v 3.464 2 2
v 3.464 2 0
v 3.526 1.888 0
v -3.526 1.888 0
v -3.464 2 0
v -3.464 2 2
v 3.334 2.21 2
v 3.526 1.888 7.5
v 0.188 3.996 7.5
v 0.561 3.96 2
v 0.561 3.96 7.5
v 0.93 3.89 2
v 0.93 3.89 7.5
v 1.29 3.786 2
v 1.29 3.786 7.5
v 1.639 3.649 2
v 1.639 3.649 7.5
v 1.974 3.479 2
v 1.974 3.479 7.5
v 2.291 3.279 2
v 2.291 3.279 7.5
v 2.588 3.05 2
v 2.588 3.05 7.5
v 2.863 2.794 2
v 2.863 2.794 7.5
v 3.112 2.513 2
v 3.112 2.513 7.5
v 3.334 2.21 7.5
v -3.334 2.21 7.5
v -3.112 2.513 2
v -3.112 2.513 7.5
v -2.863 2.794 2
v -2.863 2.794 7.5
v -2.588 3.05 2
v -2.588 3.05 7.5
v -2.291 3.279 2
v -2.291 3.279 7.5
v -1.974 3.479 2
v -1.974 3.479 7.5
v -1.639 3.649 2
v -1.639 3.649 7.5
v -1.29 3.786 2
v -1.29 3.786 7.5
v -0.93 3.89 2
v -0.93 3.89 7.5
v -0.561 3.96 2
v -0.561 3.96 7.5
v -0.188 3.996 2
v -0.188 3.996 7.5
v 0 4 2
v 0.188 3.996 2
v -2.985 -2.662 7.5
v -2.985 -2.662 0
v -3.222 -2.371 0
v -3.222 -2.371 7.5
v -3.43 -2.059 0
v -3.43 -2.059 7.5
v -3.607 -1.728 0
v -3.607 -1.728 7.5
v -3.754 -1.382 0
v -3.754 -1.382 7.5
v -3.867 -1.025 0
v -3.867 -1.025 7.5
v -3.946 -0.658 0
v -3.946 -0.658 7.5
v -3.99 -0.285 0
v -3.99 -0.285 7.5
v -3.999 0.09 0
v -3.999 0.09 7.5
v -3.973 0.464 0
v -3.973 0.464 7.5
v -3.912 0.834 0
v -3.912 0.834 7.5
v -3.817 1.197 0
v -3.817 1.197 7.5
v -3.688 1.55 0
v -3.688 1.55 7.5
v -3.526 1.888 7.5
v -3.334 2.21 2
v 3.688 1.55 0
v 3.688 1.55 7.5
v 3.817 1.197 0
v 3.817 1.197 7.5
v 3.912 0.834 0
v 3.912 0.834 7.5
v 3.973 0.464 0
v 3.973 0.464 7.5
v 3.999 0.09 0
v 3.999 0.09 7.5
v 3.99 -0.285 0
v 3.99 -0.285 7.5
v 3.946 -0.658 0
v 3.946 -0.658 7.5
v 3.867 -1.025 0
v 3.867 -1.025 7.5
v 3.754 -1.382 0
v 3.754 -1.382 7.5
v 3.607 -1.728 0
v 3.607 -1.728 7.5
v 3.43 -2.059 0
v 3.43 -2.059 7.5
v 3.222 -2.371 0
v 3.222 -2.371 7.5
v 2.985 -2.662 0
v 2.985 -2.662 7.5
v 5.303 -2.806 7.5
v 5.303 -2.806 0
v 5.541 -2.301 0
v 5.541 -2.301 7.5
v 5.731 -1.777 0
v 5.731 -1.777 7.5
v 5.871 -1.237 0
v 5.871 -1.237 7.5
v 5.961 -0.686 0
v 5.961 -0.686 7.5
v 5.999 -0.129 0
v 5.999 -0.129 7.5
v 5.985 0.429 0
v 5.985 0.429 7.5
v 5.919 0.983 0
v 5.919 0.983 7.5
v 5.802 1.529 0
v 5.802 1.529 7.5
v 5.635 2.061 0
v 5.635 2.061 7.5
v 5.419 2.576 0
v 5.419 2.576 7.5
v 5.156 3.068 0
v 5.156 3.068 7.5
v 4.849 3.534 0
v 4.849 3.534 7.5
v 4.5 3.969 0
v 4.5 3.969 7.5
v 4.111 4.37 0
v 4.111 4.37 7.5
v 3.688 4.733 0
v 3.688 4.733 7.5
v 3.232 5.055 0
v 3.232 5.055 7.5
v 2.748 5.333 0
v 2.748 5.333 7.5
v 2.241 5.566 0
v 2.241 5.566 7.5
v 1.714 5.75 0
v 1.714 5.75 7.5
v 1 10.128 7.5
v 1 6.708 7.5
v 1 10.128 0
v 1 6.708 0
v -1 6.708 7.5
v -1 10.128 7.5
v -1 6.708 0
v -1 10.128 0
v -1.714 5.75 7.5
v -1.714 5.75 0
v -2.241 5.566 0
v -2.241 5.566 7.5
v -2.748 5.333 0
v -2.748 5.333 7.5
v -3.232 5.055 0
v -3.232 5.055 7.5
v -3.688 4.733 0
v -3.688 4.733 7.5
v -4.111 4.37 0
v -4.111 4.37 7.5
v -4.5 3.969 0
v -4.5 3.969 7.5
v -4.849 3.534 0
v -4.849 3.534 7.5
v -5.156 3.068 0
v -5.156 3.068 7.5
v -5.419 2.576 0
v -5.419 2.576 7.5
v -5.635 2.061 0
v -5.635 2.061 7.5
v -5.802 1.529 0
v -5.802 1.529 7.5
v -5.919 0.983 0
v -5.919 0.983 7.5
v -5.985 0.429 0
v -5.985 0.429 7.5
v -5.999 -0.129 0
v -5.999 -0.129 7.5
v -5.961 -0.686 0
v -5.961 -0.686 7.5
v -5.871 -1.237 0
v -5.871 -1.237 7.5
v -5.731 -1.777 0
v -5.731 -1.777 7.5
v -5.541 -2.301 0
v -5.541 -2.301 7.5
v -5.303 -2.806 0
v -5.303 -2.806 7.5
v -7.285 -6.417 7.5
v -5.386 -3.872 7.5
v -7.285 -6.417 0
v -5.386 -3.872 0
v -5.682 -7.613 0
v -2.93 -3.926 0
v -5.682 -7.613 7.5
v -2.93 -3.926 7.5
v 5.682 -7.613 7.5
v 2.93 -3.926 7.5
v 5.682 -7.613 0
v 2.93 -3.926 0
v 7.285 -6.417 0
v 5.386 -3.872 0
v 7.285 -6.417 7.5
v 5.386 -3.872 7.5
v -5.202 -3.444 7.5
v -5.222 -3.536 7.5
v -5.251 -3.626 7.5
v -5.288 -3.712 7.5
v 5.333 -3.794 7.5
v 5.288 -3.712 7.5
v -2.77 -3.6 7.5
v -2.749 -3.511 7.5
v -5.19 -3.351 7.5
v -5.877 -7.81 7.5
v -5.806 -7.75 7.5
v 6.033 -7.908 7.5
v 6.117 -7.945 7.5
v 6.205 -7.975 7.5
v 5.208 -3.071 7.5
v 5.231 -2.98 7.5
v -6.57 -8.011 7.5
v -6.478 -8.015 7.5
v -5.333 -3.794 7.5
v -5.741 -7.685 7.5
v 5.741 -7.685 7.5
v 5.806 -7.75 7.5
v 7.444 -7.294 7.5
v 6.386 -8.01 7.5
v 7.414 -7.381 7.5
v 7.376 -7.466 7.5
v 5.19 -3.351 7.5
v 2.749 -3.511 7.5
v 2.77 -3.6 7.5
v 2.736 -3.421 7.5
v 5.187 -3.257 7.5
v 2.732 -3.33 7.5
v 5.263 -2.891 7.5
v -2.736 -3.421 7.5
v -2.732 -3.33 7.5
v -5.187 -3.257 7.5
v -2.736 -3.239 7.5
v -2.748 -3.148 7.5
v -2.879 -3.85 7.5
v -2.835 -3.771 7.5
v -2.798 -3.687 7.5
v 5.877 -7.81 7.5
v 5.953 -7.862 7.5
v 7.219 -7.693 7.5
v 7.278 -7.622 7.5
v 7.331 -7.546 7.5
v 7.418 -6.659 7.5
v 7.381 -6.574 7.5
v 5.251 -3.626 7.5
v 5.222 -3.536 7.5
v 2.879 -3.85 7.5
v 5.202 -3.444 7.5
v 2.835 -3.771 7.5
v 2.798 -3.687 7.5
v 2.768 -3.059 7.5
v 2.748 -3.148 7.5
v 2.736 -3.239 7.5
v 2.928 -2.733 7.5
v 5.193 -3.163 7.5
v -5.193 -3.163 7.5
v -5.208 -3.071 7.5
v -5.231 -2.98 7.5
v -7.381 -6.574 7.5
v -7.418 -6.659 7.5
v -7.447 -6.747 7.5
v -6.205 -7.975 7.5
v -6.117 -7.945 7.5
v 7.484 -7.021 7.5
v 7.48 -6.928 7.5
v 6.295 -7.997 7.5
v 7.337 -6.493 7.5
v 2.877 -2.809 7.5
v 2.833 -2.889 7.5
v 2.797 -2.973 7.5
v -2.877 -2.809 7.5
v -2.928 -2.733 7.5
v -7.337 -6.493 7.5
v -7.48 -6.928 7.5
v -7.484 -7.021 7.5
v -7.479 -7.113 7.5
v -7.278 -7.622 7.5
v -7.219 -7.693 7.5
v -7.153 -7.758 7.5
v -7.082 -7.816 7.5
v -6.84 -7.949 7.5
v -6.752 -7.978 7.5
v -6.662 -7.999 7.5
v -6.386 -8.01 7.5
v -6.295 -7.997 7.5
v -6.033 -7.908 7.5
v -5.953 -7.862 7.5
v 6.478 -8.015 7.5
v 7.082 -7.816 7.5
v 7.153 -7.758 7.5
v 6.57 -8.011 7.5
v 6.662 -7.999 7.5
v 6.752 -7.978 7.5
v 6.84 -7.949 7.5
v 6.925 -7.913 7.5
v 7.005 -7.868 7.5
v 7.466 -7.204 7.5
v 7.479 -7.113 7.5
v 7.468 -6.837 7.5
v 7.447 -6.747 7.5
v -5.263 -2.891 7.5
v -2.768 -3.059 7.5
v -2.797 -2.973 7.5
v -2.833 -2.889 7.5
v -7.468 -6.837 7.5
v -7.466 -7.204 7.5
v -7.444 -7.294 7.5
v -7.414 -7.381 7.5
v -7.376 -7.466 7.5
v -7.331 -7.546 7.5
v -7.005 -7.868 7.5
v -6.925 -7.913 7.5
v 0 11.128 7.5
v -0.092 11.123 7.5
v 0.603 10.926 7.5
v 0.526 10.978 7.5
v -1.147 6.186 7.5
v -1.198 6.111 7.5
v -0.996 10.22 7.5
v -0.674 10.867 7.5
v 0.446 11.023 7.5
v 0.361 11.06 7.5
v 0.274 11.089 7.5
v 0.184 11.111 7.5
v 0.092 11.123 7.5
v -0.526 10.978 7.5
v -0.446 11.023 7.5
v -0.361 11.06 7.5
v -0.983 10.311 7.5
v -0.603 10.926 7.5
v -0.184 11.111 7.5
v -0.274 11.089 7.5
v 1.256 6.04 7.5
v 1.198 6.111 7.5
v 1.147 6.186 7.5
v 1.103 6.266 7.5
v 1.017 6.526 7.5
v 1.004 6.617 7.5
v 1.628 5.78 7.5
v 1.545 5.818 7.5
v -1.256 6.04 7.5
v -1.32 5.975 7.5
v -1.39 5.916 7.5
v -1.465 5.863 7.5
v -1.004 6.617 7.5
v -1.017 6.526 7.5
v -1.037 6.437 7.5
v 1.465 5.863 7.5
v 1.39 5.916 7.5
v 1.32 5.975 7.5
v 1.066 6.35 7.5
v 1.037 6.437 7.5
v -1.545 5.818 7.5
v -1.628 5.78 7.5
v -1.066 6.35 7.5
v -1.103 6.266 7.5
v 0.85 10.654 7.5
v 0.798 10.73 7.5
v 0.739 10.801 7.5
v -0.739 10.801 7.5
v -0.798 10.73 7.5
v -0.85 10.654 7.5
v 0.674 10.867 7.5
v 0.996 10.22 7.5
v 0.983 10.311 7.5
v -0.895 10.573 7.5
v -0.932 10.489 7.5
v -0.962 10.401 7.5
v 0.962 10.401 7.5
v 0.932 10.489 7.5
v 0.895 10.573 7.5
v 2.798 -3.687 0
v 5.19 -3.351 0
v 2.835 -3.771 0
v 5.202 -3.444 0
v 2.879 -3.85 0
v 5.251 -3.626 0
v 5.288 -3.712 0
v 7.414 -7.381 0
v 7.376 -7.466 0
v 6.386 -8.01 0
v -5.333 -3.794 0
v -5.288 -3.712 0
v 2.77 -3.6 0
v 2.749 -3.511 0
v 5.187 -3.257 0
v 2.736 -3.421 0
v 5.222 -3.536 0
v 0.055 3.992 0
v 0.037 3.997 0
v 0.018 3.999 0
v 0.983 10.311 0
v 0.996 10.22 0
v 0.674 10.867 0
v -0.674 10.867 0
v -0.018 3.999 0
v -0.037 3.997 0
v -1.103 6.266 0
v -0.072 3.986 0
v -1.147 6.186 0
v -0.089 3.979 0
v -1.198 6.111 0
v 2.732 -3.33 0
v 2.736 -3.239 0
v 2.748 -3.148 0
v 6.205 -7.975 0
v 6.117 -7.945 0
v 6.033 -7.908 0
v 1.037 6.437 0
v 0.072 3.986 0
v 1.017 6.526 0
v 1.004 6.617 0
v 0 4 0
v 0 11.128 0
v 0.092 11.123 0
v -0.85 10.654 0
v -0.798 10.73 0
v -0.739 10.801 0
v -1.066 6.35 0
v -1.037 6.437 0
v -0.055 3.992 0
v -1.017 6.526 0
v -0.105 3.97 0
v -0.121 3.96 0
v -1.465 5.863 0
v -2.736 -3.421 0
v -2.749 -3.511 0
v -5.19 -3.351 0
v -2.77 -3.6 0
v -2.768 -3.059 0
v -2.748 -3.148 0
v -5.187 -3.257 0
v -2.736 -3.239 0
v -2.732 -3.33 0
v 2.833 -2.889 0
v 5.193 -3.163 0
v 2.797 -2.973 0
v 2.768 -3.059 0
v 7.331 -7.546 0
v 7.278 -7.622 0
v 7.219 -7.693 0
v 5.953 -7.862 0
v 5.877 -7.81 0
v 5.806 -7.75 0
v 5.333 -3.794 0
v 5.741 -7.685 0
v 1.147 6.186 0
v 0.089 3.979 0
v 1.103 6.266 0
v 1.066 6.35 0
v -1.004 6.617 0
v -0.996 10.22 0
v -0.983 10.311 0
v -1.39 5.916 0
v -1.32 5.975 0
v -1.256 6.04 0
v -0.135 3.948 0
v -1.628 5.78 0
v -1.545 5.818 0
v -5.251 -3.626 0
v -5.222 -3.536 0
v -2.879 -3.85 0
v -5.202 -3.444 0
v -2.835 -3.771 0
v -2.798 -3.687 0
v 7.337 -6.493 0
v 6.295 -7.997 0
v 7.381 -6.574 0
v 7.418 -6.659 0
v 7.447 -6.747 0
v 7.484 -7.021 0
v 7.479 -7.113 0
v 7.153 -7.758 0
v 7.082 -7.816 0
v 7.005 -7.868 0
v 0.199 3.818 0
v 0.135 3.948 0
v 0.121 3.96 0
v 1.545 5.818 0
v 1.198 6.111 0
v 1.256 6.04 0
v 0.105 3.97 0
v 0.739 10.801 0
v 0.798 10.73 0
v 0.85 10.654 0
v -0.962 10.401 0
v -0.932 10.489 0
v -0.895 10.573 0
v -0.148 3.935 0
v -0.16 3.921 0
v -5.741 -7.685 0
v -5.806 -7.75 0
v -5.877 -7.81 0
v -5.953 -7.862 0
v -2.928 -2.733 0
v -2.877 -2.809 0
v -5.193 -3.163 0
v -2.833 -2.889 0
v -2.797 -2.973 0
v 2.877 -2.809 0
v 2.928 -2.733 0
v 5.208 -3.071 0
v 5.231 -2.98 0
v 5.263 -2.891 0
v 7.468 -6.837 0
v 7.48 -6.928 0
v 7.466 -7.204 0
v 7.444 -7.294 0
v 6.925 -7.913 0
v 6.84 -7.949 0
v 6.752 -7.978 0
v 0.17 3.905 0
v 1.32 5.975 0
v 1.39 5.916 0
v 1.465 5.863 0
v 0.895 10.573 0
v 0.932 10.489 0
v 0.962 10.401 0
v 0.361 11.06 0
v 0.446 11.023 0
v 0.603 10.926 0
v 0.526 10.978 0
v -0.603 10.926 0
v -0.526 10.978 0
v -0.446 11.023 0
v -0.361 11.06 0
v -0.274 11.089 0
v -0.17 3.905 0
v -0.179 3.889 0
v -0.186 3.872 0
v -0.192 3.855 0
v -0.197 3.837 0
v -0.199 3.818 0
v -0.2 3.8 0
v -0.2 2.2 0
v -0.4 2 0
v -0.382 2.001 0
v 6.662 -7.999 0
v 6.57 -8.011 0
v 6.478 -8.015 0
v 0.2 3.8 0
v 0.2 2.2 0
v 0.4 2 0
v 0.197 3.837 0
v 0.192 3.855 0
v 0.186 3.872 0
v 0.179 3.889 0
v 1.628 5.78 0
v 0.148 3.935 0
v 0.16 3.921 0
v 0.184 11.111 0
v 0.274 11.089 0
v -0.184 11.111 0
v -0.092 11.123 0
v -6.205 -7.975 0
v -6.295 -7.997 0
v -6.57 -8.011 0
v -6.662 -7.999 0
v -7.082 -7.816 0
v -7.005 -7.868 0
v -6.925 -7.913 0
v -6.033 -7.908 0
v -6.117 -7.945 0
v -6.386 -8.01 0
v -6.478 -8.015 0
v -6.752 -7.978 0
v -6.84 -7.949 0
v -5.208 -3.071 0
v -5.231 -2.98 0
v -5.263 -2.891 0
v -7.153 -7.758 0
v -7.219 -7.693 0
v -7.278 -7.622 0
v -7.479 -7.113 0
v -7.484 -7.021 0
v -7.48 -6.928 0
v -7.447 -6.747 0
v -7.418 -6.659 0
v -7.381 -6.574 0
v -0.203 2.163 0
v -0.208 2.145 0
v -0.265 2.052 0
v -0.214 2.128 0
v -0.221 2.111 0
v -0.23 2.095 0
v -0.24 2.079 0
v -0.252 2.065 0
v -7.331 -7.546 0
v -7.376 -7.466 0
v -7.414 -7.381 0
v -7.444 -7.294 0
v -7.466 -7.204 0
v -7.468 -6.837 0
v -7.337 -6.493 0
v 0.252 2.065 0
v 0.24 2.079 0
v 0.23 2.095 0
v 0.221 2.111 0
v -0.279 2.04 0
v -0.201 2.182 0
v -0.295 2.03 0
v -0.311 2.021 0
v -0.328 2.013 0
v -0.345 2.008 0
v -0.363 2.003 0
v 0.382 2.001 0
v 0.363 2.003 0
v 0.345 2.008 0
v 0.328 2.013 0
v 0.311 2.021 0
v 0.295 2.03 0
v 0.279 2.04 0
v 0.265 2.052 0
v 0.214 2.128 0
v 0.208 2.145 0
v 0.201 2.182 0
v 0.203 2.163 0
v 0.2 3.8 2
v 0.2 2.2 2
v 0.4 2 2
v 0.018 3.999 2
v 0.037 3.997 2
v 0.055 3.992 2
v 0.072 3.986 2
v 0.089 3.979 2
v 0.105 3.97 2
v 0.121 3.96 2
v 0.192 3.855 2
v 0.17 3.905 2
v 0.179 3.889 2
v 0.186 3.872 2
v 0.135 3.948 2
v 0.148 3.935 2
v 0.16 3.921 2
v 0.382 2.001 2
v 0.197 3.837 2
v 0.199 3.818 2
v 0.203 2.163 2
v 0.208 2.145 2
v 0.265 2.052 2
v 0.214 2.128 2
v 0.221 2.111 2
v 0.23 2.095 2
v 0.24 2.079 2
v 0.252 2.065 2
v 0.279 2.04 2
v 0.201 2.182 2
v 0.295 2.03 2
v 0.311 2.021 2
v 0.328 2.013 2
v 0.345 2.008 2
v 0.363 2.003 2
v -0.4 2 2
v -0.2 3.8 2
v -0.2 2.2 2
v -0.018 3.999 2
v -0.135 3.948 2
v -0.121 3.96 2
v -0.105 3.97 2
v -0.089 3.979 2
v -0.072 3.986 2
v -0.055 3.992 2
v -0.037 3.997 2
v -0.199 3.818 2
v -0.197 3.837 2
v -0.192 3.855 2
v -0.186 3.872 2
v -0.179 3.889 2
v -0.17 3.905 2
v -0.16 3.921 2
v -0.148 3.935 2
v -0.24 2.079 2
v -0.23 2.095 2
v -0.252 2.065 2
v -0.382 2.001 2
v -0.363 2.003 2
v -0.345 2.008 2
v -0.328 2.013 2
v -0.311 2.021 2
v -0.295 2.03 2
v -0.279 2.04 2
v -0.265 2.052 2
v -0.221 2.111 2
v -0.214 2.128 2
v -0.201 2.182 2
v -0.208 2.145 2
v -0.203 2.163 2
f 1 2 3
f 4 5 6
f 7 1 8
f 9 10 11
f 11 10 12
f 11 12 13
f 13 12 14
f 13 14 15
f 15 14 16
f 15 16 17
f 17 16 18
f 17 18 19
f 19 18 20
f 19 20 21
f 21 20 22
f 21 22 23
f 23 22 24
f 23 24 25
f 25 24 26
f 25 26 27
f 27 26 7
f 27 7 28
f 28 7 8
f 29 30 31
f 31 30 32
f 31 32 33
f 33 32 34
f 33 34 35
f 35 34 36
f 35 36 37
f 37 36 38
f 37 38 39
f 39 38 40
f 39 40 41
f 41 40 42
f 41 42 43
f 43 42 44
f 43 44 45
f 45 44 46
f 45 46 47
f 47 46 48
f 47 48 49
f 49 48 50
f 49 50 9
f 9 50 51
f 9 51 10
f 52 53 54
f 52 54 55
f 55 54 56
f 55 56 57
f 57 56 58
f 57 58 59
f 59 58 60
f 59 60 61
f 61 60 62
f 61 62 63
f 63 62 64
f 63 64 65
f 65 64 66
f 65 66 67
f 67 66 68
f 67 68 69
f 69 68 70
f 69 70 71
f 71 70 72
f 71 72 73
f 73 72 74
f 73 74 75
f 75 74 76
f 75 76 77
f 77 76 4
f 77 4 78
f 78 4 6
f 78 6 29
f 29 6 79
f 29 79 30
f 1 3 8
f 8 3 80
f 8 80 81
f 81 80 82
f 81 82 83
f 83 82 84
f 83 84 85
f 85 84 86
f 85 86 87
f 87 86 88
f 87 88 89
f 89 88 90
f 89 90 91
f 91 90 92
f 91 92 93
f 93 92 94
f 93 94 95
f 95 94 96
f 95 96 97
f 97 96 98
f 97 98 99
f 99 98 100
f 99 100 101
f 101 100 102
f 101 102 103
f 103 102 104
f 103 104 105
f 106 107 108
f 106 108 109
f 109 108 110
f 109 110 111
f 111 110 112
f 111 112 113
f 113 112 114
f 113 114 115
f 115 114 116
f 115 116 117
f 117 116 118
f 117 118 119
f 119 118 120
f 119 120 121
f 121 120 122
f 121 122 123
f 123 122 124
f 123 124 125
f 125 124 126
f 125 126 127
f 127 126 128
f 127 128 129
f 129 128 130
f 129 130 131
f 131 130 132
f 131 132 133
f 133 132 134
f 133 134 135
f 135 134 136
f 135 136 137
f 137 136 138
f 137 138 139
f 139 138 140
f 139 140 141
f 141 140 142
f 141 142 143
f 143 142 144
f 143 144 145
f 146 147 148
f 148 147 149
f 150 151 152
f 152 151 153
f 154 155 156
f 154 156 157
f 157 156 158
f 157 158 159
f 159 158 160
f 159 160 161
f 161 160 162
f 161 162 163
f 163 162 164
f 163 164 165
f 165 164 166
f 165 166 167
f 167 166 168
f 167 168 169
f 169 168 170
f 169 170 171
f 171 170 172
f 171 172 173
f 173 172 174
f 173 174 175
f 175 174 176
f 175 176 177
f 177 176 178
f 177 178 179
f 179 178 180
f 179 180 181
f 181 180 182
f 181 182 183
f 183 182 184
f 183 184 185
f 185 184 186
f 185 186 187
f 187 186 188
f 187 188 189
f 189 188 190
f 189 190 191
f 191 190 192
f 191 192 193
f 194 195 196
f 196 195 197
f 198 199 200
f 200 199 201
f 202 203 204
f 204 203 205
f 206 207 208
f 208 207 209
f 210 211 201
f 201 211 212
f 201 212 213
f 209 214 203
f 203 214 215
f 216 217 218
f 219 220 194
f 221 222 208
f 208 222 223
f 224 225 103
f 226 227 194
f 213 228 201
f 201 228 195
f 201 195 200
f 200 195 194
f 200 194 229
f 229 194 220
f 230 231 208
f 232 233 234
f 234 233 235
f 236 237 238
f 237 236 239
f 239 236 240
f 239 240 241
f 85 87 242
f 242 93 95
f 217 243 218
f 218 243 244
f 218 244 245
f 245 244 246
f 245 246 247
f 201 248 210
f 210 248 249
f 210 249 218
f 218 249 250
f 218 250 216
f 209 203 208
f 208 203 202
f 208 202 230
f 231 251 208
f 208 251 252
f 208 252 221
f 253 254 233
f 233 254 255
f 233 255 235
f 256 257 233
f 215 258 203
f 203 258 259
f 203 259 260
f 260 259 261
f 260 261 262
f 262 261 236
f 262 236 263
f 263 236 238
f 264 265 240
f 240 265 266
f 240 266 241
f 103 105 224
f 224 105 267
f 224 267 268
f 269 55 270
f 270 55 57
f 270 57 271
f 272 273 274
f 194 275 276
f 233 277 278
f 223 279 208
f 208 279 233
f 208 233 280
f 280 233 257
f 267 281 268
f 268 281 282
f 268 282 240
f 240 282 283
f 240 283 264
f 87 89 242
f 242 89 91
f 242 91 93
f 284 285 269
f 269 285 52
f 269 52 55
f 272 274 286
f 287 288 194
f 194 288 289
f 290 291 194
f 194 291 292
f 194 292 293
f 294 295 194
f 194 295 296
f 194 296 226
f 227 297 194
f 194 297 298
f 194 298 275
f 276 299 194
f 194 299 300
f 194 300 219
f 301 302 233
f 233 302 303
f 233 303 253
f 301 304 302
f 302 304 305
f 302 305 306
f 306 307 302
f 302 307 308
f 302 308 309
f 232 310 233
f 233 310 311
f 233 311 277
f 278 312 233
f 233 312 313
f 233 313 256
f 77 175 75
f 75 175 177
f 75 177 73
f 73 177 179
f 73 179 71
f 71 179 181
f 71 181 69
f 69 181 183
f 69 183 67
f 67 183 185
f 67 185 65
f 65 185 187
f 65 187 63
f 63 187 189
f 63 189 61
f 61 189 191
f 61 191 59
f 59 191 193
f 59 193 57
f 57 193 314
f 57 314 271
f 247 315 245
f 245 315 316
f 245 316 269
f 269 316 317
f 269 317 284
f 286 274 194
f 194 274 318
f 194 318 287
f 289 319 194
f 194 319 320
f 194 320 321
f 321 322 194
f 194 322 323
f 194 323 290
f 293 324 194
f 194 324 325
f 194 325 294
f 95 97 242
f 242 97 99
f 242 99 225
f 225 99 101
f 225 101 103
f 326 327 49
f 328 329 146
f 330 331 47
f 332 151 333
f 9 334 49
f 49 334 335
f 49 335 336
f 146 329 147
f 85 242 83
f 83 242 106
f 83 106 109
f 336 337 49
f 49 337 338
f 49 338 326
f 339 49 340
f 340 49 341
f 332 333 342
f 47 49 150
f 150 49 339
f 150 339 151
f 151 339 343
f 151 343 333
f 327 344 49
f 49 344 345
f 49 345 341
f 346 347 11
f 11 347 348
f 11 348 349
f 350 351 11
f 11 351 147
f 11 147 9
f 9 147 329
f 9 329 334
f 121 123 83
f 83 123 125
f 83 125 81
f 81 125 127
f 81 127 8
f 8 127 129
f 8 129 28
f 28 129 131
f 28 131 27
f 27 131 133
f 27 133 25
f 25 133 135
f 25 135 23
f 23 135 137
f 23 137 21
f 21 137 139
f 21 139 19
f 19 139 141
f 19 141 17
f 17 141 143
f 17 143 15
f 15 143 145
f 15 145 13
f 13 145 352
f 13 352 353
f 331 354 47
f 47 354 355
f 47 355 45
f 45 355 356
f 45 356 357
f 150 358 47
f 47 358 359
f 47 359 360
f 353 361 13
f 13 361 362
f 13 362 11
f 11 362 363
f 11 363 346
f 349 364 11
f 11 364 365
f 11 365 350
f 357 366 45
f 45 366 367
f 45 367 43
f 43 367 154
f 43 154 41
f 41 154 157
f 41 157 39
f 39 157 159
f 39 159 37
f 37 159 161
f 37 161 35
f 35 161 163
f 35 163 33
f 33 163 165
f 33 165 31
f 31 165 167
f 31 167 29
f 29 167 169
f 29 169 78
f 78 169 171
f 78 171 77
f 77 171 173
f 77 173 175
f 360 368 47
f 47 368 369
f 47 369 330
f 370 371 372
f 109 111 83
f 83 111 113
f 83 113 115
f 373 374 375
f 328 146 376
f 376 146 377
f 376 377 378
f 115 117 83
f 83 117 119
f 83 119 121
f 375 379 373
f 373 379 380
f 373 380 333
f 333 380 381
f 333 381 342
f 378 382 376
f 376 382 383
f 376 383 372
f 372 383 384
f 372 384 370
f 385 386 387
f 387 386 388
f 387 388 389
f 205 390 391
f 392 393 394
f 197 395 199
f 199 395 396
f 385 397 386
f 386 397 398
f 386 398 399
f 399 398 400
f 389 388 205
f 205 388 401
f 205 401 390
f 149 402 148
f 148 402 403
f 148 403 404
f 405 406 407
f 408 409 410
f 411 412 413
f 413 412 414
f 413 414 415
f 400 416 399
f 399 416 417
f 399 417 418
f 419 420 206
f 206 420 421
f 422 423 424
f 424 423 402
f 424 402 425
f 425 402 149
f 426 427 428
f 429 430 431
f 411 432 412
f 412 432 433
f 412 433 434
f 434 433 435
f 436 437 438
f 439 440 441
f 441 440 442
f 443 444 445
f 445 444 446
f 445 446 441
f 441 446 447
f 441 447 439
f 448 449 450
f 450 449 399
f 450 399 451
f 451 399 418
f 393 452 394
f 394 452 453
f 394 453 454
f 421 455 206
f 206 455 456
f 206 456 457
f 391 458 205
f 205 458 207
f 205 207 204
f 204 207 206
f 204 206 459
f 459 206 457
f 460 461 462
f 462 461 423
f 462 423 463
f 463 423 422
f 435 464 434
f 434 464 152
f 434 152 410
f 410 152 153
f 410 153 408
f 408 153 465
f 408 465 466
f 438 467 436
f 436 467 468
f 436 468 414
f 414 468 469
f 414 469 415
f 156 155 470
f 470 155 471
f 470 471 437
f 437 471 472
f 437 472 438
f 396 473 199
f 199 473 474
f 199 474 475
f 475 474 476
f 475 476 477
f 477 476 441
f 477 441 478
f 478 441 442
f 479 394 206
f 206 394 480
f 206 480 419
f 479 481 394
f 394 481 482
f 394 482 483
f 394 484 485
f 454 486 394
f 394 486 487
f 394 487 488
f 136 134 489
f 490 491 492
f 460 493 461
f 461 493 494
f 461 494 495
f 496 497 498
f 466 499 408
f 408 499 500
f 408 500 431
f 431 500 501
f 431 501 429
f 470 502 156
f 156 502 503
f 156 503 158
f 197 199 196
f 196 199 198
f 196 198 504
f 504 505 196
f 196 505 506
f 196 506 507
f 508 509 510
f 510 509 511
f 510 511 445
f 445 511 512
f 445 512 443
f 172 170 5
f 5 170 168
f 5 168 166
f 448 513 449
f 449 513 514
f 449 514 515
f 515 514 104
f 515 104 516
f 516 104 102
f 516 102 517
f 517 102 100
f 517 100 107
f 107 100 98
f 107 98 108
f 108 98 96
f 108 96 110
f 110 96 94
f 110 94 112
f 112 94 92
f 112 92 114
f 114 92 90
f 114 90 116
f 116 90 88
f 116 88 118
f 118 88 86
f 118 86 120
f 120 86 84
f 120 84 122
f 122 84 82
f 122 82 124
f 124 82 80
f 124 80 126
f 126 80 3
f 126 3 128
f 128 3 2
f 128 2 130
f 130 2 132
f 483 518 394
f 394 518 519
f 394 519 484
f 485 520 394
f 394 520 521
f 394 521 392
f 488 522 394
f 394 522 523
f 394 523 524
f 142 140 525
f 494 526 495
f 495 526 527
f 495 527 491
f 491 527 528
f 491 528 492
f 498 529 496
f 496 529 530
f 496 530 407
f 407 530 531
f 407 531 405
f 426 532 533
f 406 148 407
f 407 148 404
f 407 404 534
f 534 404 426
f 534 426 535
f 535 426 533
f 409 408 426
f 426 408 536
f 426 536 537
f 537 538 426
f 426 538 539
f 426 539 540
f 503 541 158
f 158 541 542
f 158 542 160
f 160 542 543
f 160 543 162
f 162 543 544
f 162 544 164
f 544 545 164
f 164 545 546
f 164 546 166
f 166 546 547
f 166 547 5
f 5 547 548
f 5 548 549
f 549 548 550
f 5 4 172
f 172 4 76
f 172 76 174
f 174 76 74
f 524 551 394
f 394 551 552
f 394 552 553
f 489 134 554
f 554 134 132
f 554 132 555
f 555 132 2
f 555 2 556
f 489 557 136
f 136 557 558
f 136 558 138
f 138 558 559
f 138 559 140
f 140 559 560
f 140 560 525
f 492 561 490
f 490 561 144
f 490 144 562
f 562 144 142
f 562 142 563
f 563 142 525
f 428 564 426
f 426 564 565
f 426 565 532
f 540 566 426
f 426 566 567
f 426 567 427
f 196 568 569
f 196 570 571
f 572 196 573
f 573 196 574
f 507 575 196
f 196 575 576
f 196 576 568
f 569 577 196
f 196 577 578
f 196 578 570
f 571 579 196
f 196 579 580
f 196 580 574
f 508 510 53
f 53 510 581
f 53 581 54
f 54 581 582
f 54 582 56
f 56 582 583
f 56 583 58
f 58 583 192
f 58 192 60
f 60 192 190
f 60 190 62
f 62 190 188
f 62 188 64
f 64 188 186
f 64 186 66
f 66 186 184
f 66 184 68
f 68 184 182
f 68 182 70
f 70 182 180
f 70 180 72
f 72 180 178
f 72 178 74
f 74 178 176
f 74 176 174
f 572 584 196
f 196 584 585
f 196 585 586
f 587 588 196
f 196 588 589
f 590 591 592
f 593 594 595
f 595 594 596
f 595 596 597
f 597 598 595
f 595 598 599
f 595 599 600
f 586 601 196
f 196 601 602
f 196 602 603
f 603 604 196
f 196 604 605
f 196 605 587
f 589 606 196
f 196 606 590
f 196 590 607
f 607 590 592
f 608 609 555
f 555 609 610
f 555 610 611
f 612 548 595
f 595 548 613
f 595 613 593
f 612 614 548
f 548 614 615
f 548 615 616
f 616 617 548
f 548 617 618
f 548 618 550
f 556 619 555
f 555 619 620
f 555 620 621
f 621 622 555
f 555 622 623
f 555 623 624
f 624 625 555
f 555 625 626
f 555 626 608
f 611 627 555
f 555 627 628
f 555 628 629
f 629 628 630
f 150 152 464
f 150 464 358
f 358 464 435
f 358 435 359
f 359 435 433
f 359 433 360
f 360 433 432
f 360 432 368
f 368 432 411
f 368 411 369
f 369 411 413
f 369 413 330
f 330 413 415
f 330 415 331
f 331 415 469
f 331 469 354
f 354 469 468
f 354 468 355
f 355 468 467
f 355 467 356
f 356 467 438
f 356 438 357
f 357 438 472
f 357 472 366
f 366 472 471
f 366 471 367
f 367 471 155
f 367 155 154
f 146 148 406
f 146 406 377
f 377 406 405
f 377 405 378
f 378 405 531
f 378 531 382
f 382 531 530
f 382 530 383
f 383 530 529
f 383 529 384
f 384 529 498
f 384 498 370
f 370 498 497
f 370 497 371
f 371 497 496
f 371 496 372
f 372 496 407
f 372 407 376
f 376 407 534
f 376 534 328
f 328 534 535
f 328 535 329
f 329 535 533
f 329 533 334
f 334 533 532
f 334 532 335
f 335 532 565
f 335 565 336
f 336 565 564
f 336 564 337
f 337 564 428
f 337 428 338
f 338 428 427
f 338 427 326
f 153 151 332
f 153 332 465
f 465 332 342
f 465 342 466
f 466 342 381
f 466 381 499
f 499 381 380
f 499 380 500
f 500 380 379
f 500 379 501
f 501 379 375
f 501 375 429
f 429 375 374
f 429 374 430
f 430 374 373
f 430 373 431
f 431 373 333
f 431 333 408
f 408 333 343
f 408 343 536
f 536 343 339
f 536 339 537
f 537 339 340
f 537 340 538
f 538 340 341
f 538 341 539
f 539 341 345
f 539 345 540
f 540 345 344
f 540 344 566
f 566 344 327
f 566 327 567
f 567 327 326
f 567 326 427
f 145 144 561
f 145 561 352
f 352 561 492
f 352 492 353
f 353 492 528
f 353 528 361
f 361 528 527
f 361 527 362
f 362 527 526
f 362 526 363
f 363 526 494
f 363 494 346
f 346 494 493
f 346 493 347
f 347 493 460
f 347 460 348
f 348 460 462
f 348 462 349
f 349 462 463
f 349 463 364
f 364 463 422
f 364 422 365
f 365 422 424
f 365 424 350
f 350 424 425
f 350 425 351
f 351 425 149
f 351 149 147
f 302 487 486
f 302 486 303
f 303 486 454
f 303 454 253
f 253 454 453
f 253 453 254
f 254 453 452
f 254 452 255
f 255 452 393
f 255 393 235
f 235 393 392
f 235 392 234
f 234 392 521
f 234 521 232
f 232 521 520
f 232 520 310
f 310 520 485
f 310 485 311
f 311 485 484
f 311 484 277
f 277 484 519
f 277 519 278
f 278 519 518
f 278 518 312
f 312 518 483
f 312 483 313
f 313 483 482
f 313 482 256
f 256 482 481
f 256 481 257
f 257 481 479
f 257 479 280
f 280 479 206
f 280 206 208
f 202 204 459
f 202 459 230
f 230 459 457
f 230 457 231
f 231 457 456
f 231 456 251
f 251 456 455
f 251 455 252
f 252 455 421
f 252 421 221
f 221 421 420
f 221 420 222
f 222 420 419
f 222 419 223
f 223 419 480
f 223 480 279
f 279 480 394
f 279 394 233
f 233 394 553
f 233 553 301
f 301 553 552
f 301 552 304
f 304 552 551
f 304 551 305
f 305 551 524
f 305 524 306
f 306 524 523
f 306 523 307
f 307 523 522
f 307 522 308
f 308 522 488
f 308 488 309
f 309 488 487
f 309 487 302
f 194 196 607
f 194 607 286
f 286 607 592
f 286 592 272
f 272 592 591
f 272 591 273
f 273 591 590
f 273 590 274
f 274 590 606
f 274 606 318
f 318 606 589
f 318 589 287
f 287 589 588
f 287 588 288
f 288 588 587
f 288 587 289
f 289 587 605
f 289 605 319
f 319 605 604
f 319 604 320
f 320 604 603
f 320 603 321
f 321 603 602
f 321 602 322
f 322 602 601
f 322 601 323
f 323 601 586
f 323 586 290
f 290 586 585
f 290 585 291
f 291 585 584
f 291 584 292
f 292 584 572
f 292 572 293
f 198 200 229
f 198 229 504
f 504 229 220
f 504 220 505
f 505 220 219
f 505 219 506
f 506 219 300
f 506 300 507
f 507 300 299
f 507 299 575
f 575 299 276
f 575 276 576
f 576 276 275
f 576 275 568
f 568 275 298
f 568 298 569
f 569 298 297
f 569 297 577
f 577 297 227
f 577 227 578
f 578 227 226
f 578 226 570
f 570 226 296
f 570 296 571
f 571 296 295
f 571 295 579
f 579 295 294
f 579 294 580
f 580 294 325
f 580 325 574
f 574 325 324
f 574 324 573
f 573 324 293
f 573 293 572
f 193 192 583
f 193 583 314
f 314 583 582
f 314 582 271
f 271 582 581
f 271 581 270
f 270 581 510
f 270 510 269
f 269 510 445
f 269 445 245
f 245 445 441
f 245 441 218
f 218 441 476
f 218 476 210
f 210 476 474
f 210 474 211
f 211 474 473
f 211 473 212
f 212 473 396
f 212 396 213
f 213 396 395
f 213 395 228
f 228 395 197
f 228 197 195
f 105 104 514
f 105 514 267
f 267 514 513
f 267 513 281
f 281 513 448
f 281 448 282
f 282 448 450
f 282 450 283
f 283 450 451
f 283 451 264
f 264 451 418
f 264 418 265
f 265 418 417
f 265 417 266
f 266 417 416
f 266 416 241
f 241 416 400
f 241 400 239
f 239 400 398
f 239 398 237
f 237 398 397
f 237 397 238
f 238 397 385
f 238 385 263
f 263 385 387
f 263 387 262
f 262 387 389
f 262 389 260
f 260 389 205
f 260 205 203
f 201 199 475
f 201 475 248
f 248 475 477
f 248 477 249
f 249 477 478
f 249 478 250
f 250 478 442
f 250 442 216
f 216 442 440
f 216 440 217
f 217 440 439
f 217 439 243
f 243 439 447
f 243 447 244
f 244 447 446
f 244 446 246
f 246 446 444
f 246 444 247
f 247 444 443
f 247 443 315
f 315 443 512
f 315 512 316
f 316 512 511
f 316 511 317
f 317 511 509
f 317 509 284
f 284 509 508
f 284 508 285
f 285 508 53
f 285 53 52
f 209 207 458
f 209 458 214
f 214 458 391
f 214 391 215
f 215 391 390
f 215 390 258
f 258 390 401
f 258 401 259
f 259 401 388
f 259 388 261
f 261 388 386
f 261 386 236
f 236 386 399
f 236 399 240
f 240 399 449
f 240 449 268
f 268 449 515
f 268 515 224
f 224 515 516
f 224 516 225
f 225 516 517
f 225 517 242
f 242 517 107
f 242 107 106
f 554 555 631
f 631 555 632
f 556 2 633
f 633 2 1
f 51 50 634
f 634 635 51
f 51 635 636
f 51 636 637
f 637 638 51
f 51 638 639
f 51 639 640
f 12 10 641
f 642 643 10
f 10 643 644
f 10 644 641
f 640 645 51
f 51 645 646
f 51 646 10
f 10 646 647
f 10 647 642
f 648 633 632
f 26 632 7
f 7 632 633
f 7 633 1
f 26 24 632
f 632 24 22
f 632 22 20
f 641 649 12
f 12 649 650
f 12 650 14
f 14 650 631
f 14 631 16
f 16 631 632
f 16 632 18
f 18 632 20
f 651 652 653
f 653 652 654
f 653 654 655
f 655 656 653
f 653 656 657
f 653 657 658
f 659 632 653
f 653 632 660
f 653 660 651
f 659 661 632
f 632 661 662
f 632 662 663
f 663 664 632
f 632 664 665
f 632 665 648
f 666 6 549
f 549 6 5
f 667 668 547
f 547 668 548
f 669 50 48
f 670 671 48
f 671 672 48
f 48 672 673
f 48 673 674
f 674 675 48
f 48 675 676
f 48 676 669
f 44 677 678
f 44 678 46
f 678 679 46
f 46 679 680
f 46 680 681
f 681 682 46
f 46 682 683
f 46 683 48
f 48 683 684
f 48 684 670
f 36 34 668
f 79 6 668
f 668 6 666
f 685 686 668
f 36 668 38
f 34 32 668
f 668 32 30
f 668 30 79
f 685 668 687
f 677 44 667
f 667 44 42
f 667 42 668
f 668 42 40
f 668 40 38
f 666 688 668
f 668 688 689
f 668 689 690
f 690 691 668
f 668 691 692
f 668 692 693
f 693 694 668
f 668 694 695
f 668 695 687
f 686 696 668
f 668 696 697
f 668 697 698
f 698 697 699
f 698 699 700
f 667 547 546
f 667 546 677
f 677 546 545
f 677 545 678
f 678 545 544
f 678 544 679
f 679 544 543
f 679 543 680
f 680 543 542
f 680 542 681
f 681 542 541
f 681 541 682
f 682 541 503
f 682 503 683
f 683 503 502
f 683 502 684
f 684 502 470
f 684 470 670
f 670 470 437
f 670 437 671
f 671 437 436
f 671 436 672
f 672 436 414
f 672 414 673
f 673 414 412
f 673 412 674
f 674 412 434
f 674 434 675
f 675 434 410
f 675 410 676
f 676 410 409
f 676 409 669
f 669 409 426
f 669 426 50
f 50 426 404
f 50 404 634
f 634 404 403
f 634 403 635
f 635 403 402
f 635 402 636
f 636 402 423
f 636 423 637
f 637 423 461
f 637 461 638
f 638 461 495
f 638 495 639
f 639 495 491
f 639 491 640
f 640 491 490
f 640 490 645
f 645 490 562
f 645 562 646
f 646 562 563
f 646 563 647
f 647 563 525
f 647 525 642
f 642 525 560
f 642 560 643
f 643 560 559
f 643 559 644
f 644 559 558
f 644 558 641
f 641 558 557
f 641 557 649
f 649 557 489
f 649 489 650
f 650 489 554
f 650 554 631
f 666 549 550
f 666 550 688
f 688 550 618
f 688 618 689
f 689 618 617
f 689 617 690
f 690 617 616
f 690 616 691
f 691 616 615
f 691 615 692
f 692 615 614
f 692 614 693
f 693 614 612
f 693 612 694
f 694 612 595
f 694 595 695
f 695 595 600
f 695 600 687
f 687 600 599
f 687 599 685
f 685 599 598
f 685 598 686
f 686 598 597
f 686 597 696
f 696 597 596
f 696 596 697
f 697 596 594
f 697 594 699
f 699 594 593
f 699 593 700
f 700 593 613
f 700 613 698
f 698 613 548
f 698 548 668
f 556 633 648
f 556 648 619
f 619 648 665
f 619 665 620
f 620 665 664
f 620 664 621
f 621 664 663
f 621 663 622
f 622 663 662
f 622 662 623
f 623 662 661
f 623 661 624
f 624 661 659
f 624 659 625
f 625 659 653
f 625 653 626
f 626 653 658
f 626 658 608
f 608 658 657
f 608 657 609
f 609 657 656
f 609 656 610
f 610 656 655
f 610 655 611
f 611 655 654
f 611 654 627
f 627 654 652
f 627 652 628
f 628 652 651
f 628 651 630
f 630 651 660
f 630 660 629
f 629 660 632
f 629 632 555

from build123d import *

# Parameters (mm, degrees)
BOSS_EXTRUDE1_DEPTH = 7.5
FILLET1_R           = 1
BOSS_EXTRUDE2_DEPTH = 2
FILLET2_R           = 0.2


with BuildPart() as part:
    # Sketch1 → Boss-Extrude1 (new body)
    with BuildSketch(Plane.XY):
        with BuildLine():
            Line((2.392596776, -3.20553906), (6.280566538, -8.414540033))
            Line((6.280566538, -8.414540033), (7.883336068, -7.218241645))
            Line((7.883336068, -7.218241645), (4.98641234, -3.337018425))
            ThreePointArc((4.98641234, -3.337018425), (5.510375649, 2.373975613), (1, 5.916079783))
            Line((1, 5.916079783), (1, 11.127644916))
            Line((1, 11.127644916), (-1, 11.127644916))
            Line((-1, 11.127644916), (-1, 5.916079783))
            ThreePointArc((-1, 5.916079783), (-5.510375649, 2.373975613), (-4.98641234, -3.337018425))
            Line((-4.98641234, -3.337018425), (-7.883336068, -7.218241645))
            Line((-7.883336068, -7.218241645), (-6.280566538, -8.414540033))
            Line((-6.280566538, -8.414540033), (-2.392596776, -3.20553906))
            ThreePointArc((-2.392596776, -3.20553906), (0, 4), (2.392596776, -3.20553906))
        make_face()
    extrude(amount=BOSS_EXTRUDE1_DEPTH)

    # Fillet1
    fillet1_edges = [part.edges().sort_by_distance(p)[0] for p in [
        (6.280566538, -8.414540033, 3.75),
        (7.883336068, -7.218241645, 3.75),
        (-6.280566538, -8.414540033, 3.75),
        (-7.883336068, -7.218241645, 3.75),
        (-4.98641234, -3.337018425, 3.75),
        (2.392596776, -3.20553906, 3.75),
        (-2.392596776, -3.20553906, 3.75),
        (4.98641234, -3.337018425, 3.75),
        (-1, 5.916079783, 3.75),
        (-1, 11.127644916, 3.75),
        (1, 11.127644916, 3.75),
        (1, 5.916079783, 3.75),
    ]]
    fillet(fillet1_edges, radius=FILLET1_R - 0.0001)  # a hair under: the kernel refuses the full size

    # Sketch2 → Boss-Extrude2 (add)
    with BuildSketch(Plane(origin=(0, 0, 0), x_dir=(-1, 0, 0), z_dir=(0, 0, -1))):
        with BuildLine():
            ThreePointArc((-0.2, 3.994996871), (-2.086004144, 3.413002594), (-3.464101615, 2))
            Line((-3.464101615, 2), (-0.2, 2))
            Line((-0.2, 2), (-0.2, 3.994996871))
        make_face()
        with BuildLine():
            Line((0.2, 3.994996871), (0.2, 2))
            Line((0.2, 2), (3.464101615, 2))
            ThreePointArc((3.464101615, 2), (2.086004144, 3.413002594), (0.2, 3.994996871))
        make_face()
    extrude(amount=-BOSS_EXTRUDE2_DEPTH)

    # Fillet2
    fillet2_edges = [part.edges().sort_by_distance(p)[0] for p in [
        (0.2, 3.994996871, 1),
        (-0.2, 3.994996871, 1),
        (-0.2, 2, 1),
        (0.2, 2, 1),
    ]]
    fillet(fillet2_edges, radius=FILLET2_R - 0.0001)  # a hair under: the kernel refuses the full size


solid = part.part
